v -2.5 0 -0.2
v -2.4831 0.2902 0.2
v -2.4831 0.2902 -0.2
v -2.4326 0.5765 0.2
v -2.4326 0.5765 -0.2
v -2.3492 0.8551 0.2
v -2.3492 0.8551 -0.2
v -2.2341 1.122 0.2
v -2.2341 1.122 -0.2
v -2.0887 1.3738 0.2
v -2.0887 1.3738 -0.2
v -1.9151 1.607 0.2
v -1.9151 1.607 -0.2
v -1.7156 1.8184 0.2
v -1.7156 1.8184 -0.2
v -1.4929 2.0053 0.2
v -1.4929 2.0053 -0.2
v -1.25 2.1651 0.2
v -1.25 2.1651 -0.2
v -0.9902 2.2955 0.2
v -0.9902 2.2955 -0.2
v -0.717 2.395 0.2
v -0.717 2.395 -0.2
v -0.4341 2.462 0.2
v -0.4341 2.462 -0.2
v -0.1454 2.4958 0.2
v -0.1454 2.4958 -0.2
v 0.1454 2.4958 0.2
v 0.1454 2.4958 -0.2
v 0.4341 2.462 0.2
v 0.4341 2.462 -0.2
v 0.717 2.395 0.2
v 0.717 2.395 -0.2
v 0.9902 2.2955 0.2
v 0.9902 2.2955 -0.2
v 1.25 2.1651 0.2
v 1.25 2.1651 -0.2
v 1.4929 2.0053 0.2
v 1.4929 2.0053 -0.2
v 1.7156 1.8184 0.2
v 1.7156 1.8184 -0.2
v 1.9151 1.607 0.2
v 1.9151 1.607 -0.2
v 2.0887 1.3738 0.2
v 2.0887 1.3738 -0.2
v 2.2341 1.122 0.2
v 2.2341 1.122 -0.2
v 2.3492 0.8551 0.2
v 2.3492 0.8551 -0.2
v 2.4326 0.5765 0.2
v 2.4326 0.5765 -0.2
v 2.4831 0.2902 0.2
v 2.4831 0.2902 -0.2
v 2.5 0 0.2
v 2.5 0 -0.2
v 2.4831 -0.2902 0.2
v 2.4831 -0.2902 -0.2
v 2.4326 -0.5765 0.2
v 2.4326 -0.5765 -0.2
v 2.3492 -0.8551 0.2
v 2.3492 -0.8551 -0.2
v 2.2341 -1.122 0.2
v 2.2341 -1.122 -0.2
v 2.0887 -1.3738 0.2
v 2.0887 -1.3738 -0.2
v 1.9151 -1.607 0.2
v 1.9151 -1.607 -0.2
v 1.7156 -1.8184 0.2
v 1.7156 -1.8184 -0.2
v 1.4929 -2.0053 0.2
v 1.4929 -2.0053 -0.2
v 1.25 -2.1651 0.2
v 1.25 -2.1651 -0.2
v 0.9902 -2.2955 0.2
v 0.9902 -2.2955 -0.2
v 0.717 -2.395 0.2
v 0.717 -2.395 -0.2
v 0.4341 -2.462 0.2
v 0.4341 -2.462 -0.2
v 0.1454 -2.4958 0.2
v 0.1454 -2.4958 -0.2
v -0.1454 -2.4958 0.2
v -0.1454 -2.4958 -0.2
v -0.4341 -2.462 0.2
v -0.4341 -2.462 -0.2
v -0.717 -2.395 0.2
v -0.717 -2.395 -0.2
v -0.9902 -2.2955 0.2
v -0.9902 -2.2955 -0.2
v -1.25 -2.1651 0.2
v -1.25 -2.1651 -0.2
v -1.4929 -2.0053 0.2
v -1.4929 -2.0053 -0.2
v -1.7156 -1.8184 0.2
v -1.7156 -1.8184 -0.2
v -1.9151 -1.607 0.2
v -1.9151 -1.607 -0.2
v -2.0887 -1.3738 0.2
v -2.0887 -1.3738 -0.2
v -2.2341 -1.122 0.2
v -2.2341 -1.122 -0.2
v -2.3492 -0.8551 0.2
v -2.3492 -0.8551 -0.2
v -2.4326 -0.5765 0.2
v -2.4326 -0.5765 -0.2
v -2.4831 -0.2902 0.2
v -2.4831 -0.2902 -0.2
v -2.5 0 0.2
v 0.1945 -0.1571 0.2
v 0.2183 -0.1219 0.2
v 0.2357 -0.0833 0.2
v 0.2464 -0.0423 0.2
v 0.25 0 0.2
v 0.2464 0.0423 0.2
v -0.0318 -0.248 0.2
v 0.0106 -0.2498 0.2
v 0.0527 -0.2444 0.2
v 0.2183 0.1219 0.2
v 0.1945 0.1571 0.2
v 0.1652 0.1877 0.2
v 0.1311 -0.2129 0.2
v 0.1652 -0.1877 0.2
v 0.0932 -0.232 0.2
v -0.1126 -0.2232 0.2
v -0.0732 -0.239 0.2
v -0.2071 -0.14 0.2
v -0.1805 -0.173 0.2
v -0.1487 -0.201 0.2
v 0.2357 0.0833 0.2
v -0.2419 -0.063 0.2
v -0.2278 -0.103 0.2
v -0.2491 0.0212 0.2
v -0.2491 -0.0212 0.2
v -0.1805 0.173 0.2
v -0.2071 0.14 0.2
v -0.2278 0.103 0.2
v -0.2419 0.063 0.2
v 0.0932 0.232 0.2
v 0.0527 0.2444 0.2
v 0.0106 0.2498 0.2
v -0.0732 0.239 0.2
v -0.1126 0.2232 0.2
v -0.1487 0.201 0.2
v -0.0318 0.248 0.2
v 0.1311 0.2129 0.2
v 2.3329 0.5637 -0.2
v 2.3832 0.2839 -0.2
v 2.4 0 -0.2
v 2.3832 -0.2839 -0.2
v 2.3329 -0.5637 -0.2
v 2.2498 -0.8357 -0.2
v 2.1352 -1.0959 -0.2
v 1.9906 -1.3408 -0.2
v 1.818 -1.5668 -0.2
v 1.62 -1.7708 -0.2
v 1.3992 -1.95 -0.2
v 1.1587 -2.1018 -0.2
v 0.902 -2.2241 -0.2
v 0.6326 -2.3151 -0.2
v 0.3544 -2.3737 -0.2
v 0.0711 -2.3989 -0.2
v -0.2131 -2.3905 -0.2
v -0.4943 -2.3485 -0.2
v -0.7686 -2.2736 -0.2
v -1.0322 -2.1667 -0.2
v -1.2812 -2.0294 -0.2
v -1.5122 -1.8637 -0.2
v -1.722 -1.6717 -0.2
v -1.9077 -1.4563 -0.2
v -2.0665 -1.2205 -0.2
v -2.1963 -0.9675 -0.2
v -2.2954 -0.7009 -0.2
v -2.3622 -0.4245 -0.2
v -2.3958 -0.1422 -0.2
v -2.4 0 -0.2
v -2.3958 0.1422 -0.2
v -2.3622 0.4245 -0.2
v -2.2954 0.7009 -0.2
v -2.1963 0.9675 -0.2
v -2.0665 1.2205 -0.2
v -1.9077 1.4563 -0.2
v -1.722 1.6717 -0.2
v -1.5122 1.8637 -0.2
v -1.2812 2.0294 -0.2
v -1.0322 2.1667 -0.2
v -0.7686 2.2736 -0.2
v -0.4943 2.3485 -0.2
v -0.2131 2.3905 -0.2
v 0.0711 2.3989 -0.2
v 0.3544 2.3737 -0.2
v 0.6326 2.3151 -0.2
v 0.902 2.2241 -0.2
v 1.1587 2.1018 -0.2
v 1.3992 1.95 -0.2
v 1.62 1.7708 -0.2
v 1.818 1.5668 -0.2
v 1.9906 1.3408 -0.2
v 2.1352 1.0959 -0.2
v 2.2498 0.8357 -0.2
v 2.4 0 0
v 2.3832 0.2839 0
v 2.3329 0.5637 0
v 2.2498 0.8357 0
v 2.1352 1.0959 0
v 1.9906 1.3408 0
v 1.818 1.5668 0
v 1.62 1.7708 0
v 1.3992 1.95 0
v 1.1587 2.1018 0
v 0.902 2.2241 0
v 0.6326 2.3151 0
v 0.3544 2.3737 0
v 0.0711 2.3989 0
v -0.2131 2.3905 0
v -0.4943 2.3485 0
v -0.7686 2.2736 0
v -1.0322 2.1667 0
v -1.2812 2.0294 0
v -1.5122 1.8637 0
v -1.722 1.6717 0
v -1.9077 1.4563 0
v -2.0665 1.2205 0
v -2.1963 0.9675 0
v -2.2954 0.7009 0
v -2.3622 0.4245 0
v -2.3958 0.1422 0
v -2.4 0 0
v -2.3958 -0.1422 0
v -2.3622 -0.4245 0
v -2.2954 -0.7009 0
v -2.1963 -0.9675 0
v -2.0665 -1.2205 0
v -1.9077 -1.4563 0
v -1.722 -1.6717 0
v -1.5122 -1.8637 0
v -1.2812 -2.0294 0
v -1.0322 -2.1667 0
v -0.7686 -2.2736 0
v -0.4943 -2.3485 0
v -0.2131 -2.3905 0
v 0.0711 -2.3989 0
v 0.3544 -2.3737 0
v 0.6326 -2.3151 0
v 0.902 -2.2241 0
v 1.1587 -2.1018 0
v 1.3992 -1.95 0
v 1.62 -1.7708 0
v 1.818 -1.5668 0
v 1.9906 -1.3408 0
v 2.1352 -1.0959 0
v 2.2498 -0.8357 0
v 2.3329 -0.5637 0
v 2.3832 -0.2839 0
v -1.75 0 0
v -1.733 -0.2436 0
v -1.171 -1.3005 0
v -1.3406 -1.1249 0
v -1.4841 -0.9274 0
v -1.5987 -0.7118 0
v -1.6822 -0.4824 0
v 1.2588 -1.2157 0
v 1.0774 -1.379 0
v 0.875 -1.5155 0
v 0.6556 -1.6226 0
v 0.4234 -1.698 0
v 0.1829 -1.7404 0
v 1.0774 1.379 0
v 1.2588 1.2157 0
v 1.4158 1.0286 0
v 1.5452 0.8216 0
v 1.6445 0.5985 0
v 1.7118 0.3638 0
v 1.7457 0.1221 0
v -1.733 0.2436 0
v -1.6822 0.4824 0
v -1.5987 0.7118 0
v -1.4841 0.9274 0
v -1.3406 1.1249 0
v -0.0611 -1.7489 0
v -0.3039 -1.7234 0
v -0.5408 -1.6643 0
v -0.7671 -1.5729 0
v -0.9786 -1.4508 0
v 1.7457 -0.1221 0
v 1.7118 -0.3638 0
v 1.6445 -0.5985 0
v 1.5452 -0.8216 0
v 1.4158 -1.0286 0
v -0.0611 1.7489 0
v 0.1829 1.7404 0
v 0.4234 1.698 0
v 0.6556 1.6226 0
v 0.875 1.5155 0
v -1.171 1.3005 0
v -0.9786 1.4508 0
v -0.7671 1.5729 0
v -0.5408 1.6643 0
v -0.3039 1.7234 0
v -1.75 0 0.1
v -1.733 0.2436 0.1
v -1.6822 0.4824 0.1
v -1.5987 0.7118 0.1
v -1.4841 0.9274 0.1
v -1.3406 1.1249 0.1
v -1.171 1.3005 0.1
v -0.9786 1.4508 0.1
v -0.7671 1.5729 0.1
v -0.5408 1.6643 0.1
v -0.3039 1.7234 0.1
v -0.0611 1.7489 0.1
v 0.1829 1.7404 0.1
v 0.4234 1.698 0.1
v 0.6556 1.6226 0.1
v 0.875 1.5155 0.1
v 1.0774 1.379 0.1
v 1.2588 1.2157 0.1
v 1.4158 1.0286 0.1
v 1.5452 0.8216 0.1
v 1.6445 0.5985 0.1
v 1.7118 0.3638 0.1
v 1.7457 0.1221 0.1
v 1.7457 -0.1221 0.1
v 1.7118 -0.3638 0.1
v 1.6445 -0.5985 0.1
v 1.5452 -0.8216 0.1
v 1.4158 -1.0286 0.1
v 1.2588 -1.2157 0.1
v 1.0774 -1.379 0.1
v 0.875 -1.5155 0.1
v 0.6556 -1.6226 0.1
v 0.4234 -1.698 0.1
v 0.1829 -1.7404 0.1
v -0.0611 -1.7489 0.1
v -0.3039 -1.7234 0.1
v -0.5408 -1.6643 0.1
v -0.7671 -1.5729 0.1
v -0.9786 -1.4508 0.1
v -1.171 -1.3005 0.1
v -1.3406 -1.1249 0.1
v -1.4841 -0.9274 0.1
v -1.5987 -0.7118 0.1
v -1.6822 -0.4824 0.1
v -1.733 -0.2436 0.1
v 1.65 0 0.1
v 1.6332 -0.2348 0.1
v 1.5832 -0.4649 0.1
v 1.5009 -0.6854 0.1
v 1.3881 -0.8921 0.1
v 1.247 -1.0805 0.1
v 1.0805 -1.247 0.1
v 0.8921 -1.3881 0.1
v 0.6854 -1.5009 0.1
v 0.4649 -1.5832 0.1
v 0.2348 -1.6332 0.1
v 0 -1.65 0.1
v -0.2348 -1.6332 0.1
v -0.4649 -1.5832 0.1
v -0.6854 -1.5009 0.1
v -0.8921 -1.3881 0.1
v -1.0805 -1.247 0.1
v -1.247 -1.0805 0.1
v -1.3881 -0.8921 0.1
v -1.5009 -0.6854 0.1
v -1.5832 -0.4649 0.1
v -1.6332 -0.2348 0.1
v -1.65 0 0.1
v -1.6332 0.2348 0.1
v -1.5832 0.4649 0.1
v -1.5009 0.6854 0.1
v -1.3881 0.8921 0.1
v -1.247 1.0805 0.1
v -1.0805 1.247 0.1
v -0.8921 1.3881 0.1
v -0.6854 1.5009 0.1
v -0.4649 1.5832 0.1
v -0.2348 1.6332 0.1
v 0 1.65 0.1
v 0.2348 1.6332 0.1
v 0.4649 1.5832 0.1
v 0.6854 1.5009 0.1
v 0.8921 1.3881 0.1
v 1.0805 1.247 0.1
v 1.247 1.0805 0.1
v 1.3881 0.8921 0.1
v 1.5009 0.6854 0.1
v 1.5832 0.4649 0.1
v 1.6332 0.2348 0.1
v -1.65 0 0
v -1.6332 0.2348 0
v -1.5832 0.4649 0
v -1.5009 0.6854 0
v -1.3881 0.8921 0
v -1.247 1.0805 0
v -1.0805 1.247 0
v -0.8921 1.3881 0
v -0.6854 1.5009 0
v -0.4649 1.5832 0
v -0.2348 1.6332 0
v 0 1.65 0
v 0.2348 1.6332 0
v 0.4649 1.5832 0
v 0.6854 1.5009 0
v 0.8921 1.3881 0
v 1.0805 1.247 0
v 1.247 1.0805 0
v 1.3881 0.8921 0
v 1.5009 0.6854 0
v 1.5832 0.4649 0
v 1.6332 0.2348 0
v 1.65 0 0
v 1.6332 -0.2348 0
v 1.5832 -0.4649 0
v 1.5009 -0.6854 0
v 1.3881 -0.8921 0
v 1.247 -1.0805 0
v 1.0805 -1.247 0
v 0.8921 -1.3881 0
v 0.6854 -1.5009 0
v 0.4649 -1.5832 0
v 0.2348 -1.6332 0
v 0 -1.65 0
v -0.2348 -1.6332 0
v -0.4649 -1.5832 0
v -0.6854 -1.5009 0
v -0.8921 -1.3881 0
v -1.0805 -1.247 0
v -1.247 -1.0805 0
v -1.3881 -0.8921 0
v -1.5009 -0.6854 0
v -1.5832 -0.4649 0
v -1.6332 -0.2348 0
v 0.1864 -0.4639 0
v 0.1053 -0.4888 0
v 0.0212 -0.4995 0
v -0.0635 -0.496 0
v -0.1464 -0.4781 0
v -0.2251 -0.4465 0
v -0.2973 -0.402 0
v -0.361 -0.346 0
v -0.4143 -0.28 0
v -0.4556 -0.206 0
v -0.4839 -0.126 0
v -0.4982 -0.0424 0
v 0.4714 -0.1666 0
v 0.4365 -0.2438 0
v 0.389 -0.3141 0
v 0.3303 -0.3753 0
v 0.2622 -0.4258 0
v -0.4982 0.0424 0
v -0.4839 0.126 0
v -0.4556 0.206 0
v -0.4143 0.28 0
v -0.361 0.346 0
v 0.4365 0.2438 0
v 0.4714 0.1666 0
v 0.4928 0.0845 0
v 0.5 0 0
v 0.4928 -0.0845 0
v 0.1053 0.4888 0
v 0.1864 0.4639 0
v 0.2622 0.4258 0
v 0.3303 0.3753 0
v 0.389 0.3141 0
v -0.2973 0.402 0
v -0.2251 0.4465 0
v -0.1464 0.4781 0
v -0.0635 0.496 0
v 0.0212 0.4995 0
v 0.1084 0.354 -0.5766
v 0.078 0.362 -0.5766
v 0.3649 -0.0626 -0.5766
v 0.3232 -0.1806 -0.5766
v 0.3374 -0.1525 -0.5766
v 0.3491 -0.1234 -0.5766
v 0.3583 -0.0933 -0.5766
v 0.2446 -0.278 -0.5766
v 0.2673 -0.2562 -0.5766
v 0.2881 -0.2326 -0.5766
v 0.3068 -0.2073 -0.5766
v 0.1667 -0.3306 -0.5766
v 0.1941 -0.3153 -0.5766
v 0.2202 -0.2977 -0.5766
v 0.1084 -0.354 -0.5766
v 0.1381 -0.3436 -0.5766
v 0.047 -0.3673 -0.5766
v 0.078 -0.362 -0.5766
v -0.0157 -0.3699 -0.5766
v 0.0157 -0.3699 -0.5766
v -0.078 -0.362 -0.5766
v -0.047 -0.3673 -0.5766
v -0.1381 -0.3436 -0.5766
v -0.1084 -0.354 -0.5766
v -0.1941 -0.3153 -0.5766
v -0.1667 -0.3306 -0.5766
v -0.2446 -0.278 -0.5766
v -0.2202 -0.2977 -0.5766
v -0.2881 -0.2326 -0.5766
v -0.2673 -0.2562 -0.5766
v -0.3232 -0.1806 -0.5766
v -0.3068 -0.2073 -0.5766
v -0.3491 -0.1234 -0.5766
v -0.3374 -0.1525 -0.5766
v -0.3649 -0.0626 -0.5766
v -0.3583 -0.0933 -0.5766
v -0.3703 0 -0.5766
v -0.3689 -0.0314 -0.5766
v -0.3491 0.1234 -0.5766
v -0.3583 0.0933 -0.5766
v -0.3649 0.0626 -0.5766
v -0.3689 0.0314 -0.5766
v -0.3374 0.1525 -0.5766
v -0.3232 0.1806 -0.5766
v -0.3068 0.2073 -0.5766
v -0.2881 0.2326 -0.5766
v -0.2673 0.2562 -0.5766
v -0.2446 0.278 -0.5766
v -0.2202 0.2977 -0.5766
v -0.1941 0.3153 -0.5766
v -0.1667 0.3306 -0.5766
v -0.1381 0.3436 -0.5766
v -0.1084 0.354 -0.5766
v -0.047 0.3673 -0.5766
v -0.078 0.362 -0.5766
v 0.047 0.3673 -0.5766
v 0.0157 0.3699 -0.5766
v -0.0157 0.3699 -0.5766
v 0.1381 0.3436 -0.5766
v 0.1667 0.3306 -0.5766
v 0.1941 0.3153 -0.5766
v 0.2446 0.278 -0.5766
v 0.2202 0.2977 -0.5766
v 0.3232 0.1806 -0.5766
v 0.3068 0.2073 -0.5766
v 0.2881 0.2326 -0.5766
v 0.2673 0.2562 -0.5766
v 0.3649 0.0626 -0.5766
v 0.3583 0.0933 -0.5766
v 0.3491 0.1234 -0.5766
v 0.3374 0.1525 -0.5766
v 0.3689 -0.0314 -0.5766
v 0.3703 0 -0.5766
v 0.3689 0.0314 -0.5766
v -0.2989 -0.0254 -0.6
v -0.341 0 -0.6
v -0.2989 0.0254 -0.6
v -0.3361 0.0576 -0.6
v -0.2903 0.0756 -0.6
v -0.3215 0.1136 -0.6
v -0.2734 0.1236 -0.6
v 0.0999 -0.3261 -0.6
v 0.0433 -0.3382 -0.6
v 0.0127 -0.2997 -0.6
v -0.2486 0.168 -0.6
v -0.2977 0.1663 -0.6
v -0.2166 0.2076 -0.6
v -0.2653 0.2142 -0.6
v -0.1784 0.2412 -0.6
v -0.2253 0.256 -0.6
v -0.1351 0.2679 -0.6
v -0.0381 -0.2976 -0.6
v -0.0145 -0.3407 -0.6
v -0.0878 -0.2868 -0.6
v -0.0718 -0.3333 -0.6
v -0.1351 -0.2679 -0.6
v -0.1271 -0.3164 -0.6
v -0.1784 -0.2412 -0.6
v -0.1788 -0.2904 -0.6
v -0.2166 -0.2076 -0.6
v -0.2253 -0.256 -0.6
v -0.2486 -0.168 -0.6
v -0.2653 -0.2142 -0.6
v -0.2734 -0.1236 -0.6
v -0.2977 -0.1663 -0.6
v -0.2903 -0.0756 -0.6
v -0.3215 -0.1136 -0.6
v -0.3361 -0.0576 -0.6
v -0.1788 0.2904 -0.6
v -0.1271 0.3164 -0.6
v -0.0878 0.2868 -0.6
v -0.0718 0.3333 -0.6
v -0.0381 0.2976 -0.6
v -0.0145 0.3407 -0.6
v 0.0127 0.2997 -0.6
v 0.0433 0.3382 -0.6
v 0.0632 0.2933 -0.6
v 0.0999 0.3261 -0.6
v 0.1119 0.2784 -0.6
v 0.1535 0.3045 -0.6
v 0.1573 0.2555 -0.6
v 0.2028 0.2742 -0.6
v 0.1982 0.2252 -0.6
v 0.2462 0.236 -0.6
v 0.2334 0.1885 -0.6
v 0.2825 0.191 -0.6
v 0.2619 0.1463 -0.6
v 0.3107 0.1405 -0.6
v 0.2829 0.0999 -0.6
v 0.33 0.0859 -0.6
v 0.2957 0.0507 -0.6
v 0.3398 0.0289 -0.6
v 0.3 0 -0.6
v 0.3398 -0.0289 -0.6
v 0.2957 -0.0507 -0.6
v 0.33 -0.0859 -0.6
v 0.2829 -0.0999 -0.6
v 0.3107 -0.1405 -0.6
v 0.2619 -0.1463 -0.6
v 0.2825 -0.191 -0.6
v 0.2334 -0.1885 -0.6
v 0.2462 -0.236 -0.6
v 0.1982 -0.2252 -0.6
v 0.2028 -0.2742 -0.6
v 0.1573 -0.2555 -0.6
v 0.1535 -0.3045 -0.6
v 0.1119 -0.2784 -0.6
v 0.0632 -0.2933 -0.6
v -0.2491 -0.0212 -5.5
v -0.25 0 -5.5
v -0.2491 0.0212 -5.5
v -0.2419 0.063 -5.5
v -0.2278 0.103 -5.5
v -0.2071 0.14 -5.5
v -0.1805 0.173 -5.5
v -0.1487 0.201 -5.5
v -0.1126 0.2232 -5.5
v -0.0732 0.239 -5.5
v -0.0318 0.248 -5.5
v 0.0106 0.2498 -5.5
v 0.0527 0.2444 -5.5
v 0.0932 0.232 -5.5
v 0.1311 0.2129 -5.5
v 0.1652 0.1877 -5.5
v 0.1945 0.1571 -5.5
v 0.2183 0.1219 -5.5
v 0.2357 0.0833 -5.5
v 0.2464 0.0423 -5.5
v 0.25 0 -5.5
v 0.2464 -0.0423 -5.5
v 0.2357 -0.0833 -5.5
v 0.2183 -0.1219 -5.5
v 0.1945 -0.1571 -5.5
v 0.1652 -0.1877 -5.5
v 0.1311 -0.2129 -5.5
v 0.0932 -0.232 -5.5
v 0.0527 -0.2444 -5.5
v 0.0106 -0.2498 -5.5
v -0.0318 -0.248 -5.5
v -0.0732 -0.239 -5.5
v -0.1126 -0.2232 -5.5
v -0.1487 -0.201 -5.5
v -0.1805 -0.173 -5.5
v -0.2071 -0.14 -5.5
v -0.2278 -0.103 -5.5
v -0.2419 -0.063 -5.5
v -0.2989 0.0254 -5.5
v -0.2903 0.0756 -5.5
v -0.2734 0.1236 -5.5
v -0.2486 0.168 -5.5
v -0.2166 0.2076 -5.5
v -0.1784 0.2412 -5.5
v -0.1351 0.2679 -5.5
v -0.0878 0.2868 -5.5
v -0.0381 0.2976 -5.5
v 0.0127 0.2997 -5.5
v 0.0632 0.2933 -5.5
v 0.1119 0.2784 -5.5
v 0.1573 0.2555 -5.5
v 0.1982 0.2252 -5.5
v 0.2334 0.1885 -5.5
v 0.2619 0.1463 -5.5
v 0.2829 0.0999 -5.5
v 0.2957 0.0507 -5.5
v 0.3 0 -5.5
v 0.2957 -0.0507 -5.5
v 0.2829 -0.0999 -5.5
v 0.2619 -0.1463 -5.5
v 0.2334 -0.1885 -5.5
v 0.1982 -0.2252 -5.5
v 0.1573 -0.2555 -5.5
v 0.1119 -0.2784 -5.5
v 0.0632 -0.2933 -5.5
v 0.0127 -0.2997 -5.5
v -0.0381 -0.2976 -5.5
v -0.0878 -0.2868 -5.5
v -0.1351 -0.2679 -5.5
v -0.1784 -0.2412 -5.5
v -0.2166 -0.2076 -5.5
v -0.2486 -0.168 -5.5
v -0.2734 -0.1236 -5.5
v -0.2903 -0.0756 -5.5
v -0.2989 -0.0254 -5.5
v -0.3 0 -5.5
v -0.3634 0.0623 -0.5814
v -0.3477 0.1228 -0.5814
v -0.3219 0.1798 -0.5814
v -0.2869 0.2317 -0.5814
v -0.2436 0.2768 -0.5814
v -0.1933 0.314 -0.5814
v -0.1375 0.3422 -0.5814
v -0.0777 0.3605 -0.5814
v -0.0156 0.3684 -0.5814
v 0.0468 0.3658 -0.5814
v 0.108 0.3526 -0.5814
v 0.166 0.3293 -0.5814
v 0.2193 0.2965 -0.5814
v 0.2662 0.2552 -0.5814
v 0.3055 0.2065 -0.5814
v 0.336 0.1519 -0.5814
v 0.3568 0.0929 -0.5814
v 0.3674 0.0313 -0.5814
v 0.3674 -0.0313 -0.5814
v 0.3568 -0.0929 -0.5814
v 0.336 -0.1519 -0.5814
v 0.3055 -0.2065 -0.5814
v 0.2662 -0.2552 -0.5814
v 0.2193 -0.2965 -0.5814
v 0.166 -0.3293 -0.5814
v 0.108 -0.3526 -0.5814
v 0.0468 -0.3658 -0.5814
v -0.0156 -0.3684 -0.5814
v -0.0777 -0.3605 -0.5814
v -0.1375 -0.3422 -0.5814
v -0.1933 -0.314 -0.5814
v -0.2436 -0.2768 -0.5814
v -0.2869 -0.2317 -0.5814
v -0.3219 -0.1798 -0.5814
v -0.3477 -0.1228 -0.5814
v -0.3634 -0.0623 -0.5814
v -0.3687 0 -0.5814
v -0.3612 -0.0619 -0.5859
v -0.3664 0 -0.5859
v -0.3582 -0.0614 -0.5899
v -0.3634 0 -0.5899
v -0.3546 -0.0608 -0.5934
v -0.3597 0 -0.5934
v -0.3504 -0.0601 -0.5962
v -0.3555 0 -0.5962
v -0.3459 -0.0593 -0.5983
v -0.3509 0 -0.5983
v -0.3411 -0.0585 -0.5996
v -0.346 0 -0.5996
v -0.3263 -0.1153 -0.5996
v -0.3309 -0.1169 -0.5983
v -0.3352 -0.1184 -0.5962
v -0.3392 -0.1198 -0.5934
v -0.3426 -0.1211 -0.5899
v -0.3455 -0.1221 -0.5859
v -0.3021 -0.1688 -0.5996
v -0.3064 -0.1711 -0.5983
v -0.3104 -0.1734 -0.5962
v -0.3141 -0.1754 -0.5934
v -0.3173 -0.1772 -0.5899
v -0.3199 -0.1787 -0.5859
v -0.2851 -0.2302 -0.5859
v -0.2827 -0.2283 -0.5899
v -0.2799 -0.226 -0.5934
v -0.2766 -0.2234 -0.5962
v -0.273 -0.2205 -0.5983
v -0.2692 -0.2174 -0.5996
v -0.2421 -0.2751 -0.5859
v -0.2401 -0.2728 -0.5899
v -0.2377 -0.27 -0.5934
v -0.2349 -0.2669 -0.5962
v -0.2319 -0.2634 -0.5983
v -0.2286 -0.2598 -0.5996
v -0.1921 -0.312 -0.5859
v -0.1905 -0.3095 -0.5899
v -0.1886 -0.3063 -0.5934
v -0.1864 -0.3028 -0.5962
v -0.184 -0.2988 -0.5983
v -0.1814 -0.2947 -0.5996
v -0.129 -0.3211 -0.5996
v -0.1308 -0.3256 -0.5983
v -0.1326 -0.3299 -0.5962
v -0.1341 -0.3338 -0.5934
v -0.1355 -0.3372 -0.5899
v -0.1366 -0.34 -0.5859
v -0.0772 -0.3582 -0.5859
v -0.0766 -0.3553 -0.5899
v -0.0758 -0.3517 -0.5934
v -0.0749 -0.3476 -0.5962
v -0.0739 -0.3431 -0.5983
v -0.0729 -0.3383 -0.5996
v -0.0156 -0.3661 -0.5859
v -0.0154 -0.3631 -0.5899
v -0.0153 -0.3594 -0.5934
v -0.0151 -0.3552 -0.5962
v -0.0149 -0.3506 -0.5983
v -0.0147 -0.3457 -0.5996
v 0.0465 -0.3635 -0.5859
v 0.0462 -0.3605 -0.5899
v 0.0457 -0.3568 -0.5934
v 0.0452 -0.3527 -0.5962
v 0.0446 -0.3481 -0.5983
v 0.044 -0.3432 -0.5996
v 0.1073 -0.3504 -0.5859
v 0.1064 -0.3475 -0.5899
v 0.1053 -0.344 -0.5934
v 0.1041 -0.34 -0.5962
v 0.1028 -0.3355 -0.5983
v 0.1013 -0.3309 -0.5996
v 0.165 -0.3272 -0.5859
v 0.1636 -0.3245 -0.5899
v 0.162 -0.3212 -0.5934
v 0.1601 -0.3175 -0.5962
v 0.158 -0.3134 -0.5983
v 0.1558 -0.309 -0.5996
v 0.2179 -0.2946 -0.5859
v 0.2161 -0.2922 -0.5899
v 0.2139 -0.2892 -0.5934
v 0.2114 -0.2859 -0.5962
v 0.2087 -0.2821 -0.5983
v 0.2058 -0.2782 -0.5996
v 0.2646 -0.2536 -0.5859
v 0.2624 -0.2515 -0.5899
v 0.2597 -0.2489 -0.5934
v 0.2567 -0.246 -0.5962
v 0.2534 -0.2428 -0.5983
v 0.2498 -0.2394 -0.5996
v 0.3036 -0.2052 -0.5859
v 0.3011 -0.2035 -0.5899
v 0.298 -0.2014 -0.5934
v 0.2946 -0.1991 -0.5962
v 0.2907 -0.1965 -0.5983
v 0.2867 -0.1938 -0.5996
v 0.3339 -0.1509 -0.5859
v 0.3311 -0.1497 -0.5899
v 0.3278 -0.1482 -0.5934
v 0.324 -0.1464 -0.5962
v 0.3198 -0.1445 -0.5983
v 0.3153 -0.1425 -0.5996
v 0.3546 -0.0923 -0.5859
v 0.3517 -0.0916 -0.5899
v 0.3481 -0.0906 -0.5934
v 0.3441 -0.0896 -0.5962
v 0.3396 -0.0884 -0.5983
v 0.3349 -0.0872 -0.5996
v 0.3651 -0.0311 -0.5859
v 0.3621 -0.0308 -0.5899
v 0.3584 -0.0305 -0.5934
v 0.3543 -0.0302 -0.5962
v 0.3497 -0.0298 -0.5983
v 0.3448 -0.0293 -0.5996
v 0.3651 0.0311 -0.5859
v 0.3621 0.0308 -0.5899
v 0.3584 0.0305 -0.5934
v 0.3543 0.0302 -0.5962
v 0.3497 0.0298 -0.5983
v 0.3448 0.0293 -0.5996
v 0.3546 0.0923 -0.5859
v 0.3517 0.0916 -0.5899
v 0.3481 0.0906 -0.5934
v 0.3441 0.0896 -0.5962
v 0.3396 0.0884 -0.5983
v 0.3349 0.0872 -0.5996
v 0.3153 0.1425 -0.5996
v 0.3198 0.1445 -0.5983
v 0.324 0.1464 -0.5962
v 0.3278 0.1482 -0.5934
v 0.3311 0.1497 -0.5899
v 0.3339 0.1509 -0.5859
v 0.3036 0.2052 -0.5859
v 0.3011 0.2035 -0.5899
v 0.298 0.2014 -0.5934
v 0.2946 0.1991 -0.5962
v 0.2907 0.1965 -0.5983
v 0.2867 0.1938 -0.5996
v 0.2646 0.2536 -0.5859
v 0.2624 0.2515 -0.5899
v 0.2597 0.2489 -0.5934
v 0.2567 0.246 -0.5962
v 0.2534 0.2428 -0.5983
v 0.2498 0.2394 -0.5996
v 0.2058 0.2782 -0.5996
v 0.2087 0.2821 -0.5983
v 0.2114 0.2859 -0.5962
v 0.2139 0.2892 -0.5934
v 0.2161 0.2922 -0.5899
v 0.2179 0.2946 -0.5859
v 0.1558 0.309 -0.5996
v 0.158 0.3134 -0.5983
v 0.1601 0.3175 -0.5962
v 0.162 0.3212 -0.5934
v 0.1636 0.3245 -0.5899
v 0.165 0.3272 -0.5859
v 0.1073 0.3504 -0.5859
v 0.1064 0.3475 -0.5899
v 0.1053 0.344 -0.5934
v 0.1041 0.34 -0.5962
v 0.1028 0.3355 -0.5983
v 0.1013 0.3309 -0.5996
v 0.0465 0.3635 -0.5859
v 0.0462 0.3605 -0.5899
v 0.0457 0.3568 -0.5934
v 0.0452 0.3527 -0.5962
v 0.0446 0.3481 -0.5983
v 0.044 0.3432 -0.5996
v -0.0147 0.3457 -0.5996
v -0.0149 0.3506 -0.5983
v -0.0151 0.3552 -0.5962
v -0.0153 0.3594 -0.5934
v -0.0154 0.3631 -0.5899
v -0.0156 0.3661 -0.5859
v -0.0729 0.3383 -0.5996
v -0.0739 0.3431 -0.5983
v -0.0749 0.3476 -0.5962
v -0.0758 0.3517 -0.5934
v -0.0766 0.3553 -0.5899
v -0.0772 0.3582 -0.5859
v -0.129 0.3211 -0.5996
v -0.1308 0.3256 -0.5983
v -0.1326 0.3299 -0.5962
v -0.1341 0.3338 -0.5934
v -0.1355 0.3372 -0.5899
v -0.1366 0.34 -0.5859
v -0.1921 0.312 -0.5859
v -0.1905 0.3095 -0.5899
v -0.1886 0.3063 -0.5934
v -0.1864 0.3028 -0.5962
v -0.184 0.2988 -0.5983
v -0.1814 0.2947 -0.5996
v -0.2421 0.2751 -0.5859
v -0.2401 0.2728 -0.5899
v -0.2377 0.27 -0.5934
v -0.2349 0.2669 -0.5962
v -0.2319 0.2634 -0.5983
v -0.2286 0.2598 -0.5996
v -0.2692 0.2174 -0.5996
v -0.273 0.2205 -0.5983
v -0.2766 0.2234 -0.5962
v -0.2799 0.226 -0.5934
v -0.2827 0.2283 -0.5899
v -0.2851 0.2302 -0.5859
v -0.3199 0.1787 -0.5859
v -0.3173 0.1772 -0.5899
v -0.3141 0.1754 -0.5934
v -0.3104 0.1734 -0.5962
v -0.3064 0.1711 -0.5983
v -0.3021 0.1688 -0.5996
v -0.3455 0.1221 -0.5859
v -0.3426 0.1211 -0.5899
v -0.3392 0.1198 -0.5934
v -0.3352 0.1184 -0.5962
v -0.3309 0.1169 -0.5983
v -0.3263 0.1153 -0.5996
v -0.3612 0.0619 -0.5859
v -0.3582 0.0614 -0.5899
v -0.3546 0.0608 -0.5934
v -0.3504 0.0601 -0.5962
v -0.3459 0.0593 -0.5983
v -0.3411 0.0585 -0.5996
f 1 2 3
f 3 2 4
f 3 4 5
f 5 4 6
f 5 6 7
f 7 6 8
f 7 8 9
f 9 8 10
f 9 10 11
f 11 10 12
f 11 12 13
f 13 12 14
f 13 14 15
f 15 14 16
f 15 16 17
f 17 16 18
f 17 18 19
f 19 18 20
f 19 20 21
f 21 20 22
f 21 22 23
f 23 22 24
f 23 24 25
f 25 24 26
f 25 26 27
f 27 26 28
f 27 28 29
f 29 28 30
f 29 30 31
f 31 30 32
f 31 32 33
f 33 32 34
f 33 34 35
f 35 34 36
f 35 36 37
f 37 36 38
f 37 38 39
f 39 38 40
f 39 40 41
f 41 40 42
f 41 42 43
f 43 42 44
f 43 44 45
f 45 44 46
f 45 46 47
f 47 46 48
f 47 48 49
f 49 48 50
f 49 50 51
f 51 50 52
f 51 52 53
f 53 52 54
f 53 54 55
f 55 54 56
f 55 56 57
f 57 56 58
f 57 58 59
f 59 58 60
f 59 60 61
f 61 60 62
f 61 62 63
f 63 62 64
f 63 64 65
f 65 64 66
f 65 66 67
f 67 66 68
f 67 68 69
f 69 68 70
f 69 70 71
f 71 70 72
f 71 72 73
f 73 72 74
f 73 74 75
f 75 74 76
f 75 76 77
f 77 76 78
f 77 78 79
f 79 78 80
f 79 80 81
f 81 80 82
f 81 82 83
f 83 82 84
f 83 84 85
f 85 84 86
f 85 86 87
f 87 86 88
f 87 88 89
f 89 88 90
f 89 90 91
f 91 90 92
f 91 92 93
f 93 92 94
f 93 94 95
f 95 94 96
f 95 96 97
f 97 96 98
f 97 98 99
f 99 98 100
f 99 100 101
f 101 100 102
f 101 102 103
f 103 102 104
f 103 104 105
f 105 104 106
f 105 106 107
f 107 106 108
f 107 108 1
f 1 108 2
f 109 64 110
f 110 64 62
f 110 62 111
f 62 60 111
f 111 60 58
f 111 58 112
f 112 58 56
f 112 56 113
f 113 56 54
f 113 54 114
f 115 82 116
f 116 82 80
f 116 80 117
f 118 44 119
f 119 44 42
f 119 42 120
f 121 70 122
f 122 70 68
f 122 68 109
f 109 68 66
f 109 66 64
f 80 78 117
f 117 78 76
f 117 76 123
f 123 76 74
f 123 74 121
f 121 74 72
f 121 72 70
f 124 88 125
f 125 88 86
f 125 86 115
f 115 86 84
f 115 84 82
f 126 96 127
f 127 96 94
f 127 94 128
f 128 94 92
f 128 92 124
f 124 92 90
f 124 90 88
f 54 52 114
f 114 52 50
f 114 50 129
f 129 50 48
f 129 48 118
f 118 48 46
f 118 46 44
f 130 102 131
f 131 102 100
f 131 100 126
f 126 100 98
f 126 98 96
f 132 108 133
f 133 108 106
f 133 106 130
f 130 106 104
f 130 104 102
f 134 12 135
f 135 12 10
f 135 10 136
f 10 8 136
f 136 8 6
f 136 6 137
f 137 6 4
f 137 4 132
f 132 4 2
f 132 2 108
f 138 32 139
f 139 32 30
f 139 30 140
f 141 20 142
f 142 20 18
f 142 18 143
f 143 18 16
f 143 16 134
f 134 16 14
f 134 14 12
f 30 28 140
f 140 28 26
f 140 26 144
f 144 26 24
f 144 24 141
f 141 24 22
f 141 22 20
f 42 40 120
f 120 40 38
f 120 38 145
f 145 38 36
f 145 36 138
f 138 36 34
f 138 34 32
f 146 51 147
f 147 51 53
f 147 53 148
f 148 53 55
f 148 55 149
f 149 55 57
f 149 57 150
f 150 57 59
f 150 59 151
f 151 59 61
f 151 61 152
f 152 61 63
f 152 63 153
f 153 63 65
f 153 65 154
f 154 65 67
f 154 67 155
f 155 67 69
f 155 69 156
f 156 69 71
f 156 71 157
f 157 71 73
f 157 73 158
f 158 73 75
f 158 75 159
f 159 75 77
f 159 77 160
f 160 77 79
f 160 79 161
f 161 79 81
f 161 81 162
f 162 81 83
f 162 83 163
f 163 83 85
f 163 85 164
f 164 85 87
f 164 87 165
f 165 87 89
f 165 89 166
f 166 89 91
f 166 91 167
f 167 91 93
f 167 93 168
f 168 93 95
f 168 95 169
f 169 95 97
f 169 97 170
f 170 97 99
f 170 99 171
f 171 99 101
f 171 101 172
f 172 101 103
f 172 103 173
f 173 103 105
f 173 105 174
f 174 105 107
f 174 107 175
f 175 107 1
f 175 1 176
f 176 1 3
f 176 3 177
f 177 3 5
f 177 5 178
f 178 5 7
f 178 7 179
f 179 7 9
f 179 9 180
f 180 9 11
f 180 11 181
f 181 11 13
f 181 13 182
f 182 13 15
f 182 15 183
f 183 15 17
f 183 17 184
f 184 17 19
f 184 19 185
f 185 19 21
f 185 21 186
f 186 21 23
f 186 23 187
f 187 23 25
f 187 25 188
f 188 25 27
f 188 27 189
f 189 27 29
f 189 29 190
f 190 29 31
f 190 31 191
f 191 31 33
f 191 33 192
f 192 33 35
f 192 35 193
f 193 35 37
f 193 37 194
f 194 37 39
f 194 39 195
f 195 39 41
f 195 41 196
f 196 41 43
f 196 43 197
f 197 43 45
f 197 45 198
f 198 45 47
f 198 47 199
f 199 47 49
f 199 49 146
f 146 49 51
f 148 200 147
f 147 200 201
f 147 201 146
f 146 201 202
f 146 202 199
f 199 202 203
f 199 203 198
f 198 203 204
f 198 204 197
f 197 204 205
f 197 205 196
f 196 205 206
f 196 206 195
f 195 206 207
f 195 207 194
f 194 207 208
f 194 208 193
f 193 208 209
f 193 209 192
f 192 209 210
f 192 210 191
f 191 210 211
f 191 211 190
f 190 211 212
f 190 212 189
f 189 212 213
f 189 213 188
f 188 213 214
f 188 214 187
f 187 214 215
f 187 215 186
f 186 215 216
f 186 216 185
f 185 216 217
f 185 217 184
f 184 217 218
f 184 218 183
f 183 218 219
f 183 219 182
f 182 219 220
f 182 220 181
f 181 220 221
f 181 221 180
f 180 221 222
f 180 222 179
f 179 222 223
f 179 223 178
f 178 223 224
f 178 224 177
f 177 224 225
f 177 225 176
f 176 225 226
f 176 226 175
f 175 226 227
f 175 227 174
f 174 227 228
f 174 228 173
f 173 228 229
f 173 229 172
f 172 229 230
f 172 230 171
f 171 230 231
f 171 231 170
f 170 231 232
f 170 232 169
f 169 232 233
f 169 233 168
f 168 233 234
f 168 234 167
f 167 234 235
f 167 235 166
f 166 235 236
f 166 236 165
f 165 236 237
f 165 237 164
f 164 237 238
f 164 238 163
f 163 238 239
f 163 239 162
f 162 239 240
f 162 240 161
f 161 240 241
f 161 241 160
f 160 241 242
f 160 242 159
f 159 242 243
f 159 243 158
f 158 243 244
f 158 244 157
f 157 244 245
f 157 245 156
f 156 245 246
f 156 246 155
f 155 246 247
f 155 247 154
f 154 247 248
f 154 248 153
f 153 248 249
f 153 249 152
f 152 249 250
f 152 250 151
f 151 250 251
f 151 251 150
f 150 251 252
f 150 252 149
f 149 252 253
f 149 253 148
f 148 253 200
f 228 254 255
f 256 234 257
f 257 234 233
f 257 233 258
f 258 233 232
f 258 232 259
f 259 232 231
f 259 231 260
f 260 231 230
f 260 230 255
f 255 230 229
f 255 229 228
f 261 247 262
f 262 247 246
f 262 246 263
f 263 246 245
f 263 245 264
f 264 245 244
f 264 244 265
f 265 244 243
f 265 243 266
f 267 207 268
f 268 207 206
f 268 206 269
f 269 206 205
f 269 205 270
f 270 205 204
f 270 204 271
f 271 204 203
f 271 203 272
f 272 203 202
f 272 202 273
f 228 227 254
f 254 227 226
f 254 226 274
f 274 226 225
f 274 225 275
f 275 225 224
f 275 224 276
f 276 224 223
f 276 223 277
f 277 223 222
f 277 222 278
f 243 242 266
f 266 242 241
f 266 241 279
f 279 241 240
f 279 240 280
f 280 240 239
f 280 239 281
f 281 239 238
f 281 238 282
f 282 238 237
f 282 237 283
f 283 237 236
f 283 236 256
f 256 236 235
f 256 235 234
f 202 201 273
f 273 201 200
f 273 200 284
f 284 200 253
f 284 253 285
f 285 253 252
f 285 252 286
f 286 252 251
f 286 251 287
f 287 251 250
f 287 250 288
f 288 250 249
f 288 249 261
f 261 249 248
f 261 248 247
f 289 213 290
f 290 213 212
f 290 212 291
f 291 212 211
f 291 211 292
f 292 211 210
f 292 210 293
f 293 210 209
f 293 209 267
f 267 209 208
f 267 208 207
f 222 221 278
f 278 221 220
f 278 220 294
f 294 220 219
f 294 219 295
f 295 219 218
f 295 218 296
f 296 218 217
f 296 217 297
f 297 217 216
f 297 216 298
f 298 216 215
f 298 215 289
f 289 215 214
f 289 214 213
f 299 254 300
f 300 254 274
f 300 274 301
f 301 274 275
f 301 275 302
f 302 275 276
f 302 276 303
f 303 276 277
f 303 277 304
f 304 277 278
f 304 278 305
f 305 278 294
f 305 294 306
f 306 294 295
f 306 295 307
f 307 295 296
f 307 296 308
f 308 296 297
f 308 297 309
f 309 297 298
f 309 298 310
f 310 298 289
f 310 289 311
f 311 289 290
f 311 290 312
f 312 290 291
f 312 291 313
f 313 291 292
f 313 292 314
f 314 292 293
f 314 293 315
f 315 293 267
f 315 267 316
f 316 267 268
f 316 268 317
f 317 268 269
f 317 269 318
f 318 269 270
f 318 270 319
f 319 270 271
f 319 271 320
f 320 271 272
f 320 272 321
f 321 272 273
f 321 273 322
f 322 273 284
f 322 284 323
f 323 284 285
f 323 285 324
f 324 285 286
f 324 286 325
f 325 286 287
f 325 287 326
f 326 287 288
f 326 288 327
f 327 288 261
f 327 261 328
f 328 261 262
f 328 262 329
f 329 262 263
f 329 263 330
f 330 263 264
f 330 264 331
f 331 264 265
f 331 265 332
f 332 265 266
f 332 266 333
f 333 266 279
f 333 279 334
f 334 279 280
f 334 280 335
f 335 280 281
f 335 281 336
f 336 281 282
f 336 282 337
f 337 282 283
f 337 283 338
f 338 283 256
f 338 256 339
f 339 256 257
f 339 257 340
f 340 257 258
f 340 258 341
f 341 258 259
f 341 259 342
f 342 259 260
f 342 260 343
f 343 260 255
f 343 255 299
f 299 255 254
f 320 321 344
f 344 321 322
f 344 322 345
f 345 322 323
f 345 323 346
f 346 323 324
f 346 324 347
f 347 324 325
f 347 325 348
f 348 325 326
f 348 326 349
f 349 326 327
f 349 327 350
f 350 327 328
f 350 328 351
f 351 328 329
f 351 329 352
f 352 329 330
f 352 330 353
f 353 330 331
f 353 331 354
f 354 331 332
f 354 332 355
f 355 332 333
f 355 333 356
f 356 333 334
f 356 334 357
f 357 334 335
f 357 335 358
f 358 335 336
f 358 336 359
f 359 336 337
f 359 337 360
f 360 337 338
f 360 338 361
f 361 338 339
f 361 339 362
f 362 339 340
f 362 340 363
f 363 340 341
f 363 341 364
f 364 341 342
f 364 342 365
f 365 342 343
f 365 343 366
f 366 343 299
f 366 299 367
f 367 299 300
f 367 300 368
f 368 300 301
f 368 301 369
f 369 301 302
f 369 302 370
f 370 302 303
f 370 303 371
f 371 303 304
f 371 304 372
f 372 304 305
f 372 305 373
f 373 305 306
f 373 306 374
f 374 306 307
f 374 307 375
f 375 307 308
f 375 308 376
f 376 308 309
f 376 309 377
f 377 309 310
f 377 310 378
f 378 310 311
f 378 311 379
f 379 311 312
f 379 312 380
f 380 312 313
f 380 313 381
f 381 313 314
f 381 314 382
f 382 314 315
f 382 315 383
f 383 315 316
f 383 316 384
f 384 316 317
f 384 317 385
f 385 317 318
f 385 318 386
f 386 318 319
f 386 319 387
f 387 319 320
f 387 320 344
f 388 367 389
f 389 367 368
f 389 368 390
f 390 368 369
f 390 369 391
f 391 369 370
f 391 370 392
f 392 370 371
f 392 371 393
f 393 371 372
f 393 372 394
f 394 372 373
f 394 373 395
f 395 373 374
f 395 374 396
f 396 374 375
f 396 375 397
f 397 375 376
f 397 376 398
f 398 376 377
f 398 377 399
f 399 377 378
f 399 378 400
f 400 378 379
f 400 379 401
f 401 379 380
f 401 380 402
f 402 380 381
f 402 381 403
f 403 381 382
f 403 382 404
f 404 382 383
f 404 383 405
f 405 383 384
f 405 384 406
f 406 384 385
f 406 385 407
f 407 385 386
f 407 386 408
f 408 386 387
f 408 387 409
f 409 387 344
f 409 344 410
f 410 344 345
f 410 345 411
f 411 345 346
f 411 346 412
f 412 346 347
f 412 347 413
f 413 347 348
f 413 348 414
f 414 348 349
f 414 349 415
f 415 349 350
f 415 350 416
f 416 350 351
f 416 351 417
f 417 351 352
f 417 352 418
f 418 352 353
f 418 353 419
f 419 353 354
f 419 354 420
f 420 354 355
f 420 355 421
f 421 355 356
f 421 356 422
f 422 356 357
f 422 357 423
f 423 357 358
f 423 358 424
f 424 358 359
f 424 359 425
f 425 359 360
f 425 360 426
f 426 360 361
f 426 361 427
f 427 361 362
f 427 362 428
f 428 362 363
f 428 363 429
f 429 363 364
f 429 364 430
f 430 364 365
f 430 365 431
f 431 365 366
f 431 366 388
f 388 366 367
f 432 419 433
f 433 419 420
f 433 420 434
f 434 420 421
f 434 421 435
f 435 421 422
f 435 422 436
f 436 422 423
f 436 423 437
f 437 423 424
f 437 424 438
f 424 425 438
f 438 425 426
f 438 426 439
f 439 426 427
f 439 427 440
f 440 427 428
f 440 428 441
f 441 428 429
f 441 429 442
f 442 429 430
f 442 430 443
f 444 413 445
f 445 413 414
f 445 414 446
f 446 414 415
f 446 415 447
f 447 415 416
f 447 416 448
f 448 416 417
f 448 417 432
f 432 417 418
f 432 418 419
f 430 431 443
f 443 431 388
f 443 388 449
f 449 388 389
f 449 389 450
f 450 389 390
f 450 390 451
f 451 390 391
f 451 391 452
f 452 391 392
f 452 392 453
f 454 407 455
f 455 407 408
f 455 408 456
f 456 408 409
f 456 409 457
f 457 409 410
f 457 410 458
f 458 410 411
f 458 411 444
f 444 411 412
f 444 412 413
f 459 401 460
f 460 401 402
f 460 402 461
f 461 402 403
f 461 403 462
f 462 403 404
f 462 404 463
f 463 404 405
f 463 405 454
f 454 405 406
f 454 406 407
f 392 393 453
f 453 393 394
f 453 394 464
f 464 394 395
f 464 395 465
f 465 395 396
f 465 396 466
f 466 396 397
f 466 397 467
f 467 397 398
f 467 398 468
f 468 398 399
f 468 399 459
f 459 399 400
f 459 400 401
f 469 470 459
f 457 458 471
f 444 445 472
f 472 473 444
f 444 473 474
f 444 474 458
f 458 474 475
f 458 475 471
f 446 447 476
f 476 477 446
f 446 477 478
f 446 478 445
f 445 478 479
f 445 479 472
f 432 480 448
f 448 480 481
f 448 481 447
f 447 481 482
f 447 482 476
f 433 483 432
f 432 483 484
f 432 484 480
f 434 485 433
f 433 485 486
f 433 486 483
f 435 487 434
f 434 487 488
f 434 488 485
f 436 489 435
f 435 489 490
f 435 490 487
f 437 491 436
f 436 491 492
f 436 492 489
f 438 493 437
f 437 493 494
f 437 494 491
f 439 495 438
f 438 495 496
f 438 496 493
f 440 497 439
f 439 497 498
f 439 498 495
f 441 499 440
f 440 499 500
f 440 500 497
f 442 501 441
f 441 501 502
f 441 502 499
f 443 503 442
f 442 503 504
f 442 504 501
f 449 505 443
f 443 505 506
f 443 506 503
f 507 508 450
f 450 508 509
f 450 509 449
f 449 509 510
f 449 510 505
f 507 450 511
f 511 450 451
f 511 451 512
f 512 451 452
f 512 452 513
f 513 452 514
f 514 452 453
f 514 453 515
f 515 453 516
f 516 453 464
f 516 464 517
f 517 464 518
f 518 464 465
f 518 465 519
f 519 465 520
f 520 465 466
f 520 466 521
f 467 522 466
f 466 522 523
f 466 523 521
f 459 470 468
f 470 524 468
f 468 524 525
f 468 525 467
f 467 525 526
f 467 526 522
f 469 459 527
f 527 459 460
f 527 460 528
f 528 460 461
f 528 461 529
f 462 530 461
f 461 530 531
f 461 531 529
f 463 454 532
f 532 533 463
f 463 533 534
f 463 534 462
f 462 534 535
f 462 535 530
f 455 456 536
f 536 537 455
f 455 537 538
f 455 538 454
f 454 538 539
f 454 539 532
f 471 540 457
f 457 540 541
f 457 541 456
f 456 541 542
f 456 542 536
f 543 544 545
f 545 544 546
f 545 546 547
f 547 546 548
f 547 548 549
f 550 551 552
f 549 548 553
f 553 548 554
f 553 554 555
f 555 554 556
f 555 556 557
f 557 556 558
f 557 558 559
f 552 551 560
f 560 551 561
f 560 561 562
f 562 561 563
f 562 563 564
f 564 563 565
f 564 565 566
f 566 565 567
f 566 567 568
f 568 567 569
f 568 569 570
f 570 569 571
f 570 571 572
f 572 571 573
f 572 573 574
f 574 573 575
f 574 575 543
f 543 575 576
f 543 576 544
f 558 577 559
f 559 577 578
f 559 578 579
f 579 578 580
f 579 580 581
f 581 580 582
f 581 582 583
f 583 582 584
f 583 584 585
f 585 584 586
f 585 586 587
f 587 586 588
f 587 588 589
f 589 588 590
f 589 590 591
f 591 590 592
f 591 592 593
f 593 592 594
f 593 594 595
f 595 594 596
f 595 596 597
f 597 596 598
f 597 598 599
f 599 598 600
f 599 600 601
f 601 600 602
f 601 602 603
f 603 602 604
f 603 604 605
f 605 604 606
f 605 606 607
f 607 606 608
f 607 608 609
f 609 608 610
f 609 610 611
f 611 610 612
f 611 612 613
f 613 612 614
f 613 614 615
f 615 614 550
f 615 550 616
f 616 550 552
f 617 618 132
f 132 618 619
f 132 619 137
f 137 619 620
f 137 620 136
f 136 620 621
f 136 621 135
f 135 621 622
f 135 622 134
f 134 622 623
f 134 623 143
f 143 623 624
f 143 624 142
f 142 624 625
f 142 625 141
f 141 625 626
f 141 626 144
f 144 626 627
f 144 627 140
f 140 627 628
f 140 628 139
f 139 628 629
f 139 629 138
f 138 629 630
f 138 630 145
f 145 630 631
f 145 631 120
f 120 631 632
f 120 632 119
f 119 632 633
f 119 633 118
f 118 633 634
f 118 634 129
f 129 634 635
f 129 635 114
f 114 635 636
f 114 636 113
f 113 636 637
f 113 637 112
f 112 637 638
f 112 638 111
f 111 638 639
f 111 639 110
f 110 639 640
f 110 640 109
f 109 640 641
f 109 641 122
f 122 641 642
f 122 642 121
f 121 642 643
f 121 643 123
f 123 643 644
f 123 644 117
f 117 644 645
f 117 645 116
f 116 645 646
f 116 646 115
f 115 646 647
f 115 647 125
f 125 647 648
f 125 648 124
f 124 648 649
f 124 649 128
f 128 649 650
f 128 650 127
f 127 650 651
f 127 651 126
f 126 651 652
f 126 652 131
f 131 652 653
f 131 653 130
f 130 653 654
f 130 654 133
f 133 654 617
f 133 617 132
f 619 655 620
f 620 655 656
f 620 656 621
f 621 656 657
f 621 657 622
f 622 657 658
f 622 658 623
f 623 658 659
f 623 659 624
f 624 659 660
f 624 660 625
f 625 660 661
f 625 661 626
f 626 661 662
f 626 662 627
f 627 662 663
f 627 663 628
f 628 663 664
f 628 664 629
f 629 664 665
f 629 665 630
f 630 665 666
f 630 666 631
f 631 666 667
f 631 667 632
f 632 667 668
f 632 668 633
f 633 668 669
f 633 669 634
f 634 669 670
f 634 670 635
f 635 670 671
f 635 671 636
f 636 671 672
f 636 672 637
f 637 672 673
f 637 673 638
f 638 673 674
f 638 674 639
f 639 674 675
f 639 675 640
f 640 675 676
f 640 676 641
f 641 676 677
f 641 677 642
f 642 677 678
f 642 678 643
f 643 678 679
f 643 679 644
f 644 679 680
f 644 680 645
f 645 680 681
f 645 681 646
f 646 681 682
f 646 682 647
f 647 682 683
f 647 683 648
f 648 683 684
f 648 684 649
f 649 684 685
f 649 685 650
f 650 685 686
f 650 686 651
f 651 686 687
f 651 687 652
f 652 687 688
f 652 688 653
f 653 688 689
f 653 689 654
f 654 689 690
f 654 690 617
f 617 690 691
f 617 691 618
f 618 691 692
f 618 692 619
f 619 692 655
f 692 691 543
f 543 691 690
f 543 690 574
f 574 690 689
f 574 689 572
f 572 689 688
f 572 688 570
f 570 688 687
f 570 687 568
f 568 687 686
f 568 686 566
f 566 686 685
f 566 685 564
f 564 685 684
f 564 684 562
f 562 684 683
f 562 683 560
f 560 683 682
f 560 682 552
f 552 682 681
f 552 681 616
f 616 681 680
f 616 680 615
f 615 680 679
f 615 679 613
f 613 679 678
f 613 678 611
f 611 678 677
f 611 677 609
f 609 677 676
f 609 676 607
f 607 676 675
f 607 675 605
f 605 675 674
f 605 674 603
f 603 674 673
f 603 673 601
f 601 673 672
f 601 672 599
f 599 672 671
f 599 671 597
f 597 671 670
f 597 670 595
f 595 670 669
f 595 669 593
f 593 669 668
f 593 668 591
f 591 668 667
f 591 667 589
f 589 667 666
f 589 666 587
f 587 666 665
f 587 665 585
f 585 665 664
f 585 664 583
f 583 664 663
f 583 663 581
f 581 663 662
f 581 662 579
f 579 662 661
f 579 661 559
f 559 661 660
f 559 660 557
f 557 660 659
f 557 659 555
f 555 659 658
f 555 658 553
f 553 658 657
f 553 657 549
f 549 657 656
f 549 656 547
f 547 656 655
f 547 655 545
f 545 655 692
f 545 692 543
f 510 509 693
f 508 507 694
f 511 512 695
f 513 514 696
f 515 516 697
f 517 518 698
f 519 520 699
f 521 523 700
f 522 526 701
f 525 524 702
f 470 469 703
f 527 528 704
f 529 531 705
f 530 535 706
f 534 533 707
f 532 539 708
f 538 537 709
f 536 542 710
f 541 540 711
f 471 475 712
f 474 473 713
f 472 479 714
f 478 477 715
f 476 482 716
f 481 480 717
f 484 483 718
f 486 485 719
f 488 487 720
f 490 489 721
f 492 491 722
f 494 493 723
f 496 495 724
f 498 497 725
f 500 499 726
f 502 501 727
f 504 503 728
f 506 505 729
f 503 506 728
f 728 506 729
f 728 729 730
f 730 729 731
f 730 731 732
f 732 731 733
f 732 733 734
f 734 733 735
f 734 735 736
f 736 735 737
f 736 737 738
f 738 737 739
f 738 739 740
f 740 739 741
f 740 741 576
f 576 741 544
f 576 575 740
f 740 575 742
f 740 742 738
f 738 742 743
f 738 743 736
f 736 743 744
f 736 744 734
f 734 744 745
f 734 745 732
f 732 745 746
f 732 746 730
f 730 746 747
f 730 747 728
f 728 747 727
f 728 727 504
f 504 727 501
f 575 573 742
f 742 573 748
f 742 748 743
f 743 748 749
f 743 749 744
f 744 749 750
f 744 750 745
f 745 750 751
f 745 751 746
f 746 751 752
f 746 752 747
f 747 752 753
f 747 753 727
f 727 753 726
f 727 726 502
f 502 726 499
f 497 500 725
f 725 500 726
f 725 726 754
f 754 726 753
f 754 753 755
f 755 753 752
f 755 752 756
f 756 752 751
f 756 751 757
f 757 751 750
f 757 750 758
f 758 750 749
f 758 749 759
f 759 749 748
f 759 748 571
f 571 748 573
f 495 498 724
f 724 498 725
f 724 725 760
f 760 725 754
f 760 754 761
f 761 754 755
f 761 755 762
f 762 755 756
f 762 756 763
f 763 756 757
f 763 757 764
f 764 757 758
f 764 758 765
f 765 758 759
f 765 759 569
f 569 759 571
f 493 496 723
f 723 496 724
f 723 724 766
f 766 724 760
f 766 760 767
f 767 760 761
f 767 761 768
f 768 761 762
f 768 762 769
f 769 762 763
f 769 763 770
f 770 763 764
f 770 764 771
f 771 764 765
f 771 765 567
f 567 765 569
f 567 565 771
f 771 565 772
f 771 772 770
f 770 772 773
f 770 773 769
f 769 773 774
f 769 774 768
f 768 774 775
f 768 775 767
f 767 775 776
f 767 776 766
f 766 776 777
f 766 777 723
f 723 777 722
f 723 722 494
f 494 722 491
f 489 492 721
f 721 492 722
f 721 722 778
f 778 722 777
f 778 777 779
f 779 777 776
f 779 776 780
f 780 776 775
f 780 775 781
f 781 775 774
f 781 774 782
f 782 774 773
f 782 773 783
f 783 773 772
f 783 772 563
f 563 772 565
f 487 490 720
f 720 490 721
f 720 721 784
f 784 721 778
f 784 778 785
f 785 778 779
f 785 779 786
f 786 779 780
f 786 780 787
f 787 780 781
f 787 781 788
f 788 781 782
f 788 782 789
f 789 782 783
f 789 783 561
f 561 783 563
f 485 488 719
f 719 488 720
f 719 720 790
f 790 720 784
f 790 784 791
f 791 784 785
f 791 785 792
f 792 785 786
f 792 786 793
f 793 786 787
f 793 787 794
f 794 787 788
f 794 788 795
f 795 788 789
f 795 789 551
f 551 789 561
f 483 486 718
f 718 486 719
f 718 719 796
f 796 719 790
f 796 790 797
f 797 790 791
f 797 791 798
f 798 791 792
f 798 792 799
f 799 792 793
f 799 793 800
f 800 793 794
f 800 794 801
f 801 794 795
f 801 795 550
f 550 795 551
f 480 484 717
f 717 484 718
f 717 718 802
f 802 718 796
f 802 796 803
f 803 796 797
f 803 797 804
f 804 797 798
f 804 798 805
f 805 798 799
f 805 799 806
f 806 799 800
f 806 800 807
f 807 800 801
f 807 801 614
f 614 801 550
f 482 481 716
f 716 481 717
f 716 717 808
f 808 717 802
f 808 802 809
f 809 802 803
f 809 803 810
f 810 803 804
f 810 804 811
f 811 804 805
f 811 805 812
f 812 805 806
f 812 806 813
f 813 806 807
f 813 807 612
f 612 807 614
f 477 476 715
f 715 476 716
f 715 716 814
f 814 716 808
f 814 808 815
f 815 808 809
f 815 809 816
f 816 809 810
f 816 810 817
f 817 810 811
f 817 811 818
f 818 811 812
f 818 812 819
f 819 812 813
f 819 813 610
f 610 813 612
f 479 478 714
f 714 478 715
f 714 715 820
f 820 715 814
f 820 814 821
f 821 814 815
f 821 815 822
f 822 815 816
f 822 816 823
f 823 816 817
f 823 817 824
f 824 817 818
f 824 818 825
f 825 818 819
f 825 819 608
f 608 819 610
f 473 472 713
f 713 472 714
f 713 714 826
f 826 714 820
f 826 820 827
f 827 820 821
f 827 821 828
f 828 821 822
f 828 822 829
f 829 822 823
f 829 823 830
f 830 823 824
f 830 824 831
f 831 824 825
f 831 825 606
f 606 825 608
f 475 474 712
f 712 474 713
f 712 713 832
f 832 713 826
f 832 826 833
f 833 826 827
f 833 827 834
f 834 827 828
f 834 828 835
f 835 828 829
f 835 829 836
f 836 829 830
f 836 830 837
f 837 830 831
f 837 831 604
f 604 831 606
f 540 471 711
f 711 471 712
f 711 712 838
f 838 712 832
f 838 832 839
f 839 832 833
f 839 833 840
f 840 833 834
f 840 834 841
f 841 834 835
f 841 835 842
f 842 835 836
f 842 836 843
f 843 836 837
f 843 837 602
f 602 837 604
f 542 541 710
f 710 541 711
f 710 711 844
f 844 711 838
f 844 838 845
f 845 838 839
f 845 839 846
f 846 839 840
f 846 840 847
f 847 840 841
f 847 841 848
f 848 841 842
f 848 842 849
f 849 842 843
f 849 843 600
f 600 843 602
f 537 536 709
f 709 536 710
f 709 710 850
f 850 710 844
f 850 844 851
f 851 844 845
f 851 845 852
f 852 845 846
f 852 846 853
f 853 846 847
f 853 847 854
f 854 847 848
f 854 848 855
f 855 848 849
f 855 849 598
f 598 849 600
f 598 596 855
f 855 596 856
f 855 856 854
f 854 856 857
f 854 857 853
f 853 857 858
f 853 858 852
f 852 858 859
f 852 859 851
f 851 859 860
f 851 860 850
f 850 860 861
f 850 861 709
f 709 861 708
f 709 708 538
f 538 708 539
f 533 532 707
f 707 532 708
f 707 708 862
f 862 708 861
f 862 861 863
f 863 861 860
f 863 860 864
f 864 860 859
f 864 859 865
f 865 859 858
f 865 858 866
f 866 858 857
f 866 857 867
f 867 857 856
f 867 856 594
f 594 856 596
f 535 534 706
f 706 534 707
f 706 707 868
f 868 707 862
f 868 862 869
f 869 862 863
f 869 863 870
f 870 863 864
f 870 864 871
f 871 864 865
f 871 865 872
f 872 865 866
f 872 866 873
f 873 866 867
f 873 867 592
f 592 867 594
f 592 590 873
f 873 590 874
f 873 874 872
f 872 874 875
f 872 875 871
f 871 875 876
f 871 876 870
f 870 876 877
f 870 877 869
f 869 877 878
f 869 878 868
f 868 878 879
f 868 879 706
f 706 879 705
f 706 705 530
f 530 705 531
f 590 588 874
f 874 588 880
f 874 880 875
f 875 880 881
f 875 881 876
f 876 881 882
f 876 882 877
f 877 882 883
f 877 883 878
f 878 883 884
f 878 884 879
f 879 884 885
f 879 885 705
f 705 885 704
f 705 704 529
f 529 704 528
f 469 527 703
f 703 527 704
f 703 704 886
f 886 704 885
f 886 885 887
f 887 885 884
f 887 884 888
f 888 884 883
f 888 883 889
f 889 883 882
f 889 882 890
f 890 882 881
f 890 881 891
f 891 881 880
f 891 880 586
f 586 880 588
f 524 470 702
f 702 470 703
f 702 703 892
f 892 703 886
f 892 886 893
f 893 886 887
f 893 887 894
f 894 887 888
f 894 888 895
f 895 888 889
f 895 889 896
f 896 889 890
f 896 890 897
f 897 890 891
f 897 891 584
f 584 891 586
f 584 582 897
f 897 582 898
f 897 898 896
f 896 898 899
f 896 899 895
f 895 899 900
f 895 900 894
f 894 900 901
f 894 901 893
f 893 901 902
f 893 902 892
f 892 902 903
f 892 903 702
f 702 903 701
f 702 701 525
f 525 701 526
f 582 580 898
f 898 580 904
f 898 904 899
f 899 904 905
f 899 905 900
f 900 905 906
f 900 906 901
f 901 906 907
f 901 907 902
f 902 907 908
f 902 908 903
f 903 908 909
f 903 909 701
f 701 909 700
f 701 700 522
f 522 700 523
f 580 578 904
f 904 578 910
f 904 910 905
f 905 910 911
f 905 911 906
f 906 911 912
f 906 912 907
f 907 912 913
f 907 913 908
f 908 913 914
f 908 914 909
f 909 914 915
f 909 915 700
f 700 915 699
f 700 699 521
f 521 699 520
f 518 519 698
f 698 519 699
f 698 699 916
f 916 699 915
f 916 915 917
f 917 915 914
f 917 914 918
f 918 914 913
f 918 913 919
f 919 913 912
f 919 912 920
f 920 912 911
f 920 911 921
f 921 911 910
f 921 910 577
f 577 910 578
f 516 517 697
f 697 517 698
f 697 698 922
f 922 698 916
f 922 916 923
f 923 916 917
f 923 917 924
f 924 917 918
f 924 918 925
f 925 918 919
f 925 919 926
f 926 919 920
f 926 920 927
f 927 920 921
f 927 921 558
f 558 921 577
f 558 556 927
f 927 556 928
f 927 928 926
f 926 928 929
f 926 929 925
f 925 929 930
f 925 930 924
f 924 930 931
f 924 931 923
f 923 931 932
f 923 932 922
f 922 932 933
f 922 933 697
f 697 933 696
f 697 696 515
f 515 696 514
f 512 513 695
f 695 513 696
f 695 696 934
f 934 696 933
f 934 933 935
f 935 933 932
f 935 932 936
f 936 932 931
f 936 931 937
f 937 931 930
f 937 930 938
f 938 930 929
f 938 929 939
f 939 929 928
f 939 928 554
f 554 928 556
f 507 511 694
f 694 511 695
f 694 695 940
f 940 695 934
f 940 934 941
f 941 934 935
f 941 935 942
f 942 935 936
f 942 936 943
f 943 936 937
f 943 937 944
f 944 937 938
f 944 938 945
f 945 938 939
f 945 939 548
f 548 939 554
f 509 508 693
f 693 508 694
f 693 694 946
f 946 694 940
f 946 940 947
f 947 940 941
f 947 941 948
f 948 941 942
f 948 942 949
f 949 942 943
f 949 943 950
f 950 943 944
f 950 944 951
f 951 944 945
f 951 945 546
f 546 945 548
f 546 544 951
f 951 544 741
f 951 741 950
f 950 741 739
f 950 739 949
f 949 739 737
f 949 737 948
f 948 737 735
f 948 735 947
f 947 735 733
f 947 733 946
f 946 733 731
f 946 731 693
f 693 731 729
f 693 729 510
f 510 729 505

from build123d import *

# Parameters (mm, degrees)
SKETCH_1_R          = 2.5
EXTRUDE_1_DEPTH     = 0.2
EXTRUDE_START       = 0.2
SKETCH_3_R          = 2.5
SKETCH_3_R_2        = 2.4
EXTRUDE_2_DEPTH     = 0.2
SKETCH_4_R          = 1.75
SKETCH_4_R_2        = 1.65
CUT_EXTRUDE_1_DEPTH = 0.1
SKETCH_5_R          = 0.3
SKETCH_5_R_2        = 0.25
EXTRUDE_3_DEPTH     = 5.5
FILLET_1_R          = 0.03
CUT_EXTRUDE_START   = -5.5
SKETCH_11_R         = 0.25
CUT_EXTRUDE_3_DEPTH = 5.5


with BuildPart() as part:
    # 스케치1 → 보스-돌출1 (new body)
    with BuildSketch(Plane.XY):
        Circle(SKETCH_1_R)
    extrude(amount=EXTRUDE_1_DEPTH)

    # 스케치3 → 보스-돌출2 (add)
    with BuildSketch(Plane(origin=(0, 0, 0), x_dir=(-1, 0, 0), z_dir=(0, 0, -1)).offset(EXTRUDE_START)):
        Circle(SKETCH_3_R)
        Circle(SKETCH_3_R_2, mode=Mode.SUBTRACT)
    extrude(amount=-EXTRUDE_2_DEPTH)

    # 스케치4 → 컷-돌출1 (cut)
    with BuildSketch(Plane(origin=(0, 0, 0), x_dir=(-1, 0, 0), z_dir=(0, 0, -1))):
        Circle(SKETCH_4_R)
        Circle(SKETCH_4_R_2, mode=Mode.SUBTRACT)
    extrude(amount=-CUT_EXTRUDE_1_DEPTH, mode=Mode.SUBTRACT)

    # 스케치5 → 보스-돌출3 (add)
    with BuildSketch(Plane(origin=(0, 0, 0), x_dir=(-1, 0, 0), z_dir=(0, 0, -1))):
        with Locations(Location((0, 0, 0), (0, 0, 180))):
            Circle(SKETCH_5_R)
        Circle(SKETCH_5_R_2, mode=Mode.SUBTRACT)
    extrude(amount=EXTRUDE_3_DEPTH)

    # 스케치7 → 회전1 (revolve)
    with BuildSketch(Plane(origin=(0, 0, 0), x_dir=(1, 0, 0), z_dir=(0, 1, 0))):
        Polygon((0.3, 0), (0.3, 0.6), (0.365, 0.6), (0.5, 0), align=None)
    revolve(axis=Axis((0, 0, 0), (0, 0, -1)))

    # 필렛1
    fillet_1_edges = [part.edges().sort_by_distance(p)[0] for p in [
        (-0.365, 0, -0.6),
    ]]
    fillet(fillet_1_edges, radius=FILLET_1_R)

    # 스케치11 → 컷-돌출3 (cut)
    with BuildSketch(Plane(origin=(0, 0, 0), x_dir=(-1, 0, 0), z_dir=(0, 0, -1)).offset(CUT_EXTRUDE_START)):
        with Locations(Location((0, 0, 0), (0, 0, 180))):
            Circle(SKETCH_11_R)
    extrude(amount=CUT_EXTRUDE_3_DEPTH, mode=Mode.SUBTRACT)


solid = part.part
